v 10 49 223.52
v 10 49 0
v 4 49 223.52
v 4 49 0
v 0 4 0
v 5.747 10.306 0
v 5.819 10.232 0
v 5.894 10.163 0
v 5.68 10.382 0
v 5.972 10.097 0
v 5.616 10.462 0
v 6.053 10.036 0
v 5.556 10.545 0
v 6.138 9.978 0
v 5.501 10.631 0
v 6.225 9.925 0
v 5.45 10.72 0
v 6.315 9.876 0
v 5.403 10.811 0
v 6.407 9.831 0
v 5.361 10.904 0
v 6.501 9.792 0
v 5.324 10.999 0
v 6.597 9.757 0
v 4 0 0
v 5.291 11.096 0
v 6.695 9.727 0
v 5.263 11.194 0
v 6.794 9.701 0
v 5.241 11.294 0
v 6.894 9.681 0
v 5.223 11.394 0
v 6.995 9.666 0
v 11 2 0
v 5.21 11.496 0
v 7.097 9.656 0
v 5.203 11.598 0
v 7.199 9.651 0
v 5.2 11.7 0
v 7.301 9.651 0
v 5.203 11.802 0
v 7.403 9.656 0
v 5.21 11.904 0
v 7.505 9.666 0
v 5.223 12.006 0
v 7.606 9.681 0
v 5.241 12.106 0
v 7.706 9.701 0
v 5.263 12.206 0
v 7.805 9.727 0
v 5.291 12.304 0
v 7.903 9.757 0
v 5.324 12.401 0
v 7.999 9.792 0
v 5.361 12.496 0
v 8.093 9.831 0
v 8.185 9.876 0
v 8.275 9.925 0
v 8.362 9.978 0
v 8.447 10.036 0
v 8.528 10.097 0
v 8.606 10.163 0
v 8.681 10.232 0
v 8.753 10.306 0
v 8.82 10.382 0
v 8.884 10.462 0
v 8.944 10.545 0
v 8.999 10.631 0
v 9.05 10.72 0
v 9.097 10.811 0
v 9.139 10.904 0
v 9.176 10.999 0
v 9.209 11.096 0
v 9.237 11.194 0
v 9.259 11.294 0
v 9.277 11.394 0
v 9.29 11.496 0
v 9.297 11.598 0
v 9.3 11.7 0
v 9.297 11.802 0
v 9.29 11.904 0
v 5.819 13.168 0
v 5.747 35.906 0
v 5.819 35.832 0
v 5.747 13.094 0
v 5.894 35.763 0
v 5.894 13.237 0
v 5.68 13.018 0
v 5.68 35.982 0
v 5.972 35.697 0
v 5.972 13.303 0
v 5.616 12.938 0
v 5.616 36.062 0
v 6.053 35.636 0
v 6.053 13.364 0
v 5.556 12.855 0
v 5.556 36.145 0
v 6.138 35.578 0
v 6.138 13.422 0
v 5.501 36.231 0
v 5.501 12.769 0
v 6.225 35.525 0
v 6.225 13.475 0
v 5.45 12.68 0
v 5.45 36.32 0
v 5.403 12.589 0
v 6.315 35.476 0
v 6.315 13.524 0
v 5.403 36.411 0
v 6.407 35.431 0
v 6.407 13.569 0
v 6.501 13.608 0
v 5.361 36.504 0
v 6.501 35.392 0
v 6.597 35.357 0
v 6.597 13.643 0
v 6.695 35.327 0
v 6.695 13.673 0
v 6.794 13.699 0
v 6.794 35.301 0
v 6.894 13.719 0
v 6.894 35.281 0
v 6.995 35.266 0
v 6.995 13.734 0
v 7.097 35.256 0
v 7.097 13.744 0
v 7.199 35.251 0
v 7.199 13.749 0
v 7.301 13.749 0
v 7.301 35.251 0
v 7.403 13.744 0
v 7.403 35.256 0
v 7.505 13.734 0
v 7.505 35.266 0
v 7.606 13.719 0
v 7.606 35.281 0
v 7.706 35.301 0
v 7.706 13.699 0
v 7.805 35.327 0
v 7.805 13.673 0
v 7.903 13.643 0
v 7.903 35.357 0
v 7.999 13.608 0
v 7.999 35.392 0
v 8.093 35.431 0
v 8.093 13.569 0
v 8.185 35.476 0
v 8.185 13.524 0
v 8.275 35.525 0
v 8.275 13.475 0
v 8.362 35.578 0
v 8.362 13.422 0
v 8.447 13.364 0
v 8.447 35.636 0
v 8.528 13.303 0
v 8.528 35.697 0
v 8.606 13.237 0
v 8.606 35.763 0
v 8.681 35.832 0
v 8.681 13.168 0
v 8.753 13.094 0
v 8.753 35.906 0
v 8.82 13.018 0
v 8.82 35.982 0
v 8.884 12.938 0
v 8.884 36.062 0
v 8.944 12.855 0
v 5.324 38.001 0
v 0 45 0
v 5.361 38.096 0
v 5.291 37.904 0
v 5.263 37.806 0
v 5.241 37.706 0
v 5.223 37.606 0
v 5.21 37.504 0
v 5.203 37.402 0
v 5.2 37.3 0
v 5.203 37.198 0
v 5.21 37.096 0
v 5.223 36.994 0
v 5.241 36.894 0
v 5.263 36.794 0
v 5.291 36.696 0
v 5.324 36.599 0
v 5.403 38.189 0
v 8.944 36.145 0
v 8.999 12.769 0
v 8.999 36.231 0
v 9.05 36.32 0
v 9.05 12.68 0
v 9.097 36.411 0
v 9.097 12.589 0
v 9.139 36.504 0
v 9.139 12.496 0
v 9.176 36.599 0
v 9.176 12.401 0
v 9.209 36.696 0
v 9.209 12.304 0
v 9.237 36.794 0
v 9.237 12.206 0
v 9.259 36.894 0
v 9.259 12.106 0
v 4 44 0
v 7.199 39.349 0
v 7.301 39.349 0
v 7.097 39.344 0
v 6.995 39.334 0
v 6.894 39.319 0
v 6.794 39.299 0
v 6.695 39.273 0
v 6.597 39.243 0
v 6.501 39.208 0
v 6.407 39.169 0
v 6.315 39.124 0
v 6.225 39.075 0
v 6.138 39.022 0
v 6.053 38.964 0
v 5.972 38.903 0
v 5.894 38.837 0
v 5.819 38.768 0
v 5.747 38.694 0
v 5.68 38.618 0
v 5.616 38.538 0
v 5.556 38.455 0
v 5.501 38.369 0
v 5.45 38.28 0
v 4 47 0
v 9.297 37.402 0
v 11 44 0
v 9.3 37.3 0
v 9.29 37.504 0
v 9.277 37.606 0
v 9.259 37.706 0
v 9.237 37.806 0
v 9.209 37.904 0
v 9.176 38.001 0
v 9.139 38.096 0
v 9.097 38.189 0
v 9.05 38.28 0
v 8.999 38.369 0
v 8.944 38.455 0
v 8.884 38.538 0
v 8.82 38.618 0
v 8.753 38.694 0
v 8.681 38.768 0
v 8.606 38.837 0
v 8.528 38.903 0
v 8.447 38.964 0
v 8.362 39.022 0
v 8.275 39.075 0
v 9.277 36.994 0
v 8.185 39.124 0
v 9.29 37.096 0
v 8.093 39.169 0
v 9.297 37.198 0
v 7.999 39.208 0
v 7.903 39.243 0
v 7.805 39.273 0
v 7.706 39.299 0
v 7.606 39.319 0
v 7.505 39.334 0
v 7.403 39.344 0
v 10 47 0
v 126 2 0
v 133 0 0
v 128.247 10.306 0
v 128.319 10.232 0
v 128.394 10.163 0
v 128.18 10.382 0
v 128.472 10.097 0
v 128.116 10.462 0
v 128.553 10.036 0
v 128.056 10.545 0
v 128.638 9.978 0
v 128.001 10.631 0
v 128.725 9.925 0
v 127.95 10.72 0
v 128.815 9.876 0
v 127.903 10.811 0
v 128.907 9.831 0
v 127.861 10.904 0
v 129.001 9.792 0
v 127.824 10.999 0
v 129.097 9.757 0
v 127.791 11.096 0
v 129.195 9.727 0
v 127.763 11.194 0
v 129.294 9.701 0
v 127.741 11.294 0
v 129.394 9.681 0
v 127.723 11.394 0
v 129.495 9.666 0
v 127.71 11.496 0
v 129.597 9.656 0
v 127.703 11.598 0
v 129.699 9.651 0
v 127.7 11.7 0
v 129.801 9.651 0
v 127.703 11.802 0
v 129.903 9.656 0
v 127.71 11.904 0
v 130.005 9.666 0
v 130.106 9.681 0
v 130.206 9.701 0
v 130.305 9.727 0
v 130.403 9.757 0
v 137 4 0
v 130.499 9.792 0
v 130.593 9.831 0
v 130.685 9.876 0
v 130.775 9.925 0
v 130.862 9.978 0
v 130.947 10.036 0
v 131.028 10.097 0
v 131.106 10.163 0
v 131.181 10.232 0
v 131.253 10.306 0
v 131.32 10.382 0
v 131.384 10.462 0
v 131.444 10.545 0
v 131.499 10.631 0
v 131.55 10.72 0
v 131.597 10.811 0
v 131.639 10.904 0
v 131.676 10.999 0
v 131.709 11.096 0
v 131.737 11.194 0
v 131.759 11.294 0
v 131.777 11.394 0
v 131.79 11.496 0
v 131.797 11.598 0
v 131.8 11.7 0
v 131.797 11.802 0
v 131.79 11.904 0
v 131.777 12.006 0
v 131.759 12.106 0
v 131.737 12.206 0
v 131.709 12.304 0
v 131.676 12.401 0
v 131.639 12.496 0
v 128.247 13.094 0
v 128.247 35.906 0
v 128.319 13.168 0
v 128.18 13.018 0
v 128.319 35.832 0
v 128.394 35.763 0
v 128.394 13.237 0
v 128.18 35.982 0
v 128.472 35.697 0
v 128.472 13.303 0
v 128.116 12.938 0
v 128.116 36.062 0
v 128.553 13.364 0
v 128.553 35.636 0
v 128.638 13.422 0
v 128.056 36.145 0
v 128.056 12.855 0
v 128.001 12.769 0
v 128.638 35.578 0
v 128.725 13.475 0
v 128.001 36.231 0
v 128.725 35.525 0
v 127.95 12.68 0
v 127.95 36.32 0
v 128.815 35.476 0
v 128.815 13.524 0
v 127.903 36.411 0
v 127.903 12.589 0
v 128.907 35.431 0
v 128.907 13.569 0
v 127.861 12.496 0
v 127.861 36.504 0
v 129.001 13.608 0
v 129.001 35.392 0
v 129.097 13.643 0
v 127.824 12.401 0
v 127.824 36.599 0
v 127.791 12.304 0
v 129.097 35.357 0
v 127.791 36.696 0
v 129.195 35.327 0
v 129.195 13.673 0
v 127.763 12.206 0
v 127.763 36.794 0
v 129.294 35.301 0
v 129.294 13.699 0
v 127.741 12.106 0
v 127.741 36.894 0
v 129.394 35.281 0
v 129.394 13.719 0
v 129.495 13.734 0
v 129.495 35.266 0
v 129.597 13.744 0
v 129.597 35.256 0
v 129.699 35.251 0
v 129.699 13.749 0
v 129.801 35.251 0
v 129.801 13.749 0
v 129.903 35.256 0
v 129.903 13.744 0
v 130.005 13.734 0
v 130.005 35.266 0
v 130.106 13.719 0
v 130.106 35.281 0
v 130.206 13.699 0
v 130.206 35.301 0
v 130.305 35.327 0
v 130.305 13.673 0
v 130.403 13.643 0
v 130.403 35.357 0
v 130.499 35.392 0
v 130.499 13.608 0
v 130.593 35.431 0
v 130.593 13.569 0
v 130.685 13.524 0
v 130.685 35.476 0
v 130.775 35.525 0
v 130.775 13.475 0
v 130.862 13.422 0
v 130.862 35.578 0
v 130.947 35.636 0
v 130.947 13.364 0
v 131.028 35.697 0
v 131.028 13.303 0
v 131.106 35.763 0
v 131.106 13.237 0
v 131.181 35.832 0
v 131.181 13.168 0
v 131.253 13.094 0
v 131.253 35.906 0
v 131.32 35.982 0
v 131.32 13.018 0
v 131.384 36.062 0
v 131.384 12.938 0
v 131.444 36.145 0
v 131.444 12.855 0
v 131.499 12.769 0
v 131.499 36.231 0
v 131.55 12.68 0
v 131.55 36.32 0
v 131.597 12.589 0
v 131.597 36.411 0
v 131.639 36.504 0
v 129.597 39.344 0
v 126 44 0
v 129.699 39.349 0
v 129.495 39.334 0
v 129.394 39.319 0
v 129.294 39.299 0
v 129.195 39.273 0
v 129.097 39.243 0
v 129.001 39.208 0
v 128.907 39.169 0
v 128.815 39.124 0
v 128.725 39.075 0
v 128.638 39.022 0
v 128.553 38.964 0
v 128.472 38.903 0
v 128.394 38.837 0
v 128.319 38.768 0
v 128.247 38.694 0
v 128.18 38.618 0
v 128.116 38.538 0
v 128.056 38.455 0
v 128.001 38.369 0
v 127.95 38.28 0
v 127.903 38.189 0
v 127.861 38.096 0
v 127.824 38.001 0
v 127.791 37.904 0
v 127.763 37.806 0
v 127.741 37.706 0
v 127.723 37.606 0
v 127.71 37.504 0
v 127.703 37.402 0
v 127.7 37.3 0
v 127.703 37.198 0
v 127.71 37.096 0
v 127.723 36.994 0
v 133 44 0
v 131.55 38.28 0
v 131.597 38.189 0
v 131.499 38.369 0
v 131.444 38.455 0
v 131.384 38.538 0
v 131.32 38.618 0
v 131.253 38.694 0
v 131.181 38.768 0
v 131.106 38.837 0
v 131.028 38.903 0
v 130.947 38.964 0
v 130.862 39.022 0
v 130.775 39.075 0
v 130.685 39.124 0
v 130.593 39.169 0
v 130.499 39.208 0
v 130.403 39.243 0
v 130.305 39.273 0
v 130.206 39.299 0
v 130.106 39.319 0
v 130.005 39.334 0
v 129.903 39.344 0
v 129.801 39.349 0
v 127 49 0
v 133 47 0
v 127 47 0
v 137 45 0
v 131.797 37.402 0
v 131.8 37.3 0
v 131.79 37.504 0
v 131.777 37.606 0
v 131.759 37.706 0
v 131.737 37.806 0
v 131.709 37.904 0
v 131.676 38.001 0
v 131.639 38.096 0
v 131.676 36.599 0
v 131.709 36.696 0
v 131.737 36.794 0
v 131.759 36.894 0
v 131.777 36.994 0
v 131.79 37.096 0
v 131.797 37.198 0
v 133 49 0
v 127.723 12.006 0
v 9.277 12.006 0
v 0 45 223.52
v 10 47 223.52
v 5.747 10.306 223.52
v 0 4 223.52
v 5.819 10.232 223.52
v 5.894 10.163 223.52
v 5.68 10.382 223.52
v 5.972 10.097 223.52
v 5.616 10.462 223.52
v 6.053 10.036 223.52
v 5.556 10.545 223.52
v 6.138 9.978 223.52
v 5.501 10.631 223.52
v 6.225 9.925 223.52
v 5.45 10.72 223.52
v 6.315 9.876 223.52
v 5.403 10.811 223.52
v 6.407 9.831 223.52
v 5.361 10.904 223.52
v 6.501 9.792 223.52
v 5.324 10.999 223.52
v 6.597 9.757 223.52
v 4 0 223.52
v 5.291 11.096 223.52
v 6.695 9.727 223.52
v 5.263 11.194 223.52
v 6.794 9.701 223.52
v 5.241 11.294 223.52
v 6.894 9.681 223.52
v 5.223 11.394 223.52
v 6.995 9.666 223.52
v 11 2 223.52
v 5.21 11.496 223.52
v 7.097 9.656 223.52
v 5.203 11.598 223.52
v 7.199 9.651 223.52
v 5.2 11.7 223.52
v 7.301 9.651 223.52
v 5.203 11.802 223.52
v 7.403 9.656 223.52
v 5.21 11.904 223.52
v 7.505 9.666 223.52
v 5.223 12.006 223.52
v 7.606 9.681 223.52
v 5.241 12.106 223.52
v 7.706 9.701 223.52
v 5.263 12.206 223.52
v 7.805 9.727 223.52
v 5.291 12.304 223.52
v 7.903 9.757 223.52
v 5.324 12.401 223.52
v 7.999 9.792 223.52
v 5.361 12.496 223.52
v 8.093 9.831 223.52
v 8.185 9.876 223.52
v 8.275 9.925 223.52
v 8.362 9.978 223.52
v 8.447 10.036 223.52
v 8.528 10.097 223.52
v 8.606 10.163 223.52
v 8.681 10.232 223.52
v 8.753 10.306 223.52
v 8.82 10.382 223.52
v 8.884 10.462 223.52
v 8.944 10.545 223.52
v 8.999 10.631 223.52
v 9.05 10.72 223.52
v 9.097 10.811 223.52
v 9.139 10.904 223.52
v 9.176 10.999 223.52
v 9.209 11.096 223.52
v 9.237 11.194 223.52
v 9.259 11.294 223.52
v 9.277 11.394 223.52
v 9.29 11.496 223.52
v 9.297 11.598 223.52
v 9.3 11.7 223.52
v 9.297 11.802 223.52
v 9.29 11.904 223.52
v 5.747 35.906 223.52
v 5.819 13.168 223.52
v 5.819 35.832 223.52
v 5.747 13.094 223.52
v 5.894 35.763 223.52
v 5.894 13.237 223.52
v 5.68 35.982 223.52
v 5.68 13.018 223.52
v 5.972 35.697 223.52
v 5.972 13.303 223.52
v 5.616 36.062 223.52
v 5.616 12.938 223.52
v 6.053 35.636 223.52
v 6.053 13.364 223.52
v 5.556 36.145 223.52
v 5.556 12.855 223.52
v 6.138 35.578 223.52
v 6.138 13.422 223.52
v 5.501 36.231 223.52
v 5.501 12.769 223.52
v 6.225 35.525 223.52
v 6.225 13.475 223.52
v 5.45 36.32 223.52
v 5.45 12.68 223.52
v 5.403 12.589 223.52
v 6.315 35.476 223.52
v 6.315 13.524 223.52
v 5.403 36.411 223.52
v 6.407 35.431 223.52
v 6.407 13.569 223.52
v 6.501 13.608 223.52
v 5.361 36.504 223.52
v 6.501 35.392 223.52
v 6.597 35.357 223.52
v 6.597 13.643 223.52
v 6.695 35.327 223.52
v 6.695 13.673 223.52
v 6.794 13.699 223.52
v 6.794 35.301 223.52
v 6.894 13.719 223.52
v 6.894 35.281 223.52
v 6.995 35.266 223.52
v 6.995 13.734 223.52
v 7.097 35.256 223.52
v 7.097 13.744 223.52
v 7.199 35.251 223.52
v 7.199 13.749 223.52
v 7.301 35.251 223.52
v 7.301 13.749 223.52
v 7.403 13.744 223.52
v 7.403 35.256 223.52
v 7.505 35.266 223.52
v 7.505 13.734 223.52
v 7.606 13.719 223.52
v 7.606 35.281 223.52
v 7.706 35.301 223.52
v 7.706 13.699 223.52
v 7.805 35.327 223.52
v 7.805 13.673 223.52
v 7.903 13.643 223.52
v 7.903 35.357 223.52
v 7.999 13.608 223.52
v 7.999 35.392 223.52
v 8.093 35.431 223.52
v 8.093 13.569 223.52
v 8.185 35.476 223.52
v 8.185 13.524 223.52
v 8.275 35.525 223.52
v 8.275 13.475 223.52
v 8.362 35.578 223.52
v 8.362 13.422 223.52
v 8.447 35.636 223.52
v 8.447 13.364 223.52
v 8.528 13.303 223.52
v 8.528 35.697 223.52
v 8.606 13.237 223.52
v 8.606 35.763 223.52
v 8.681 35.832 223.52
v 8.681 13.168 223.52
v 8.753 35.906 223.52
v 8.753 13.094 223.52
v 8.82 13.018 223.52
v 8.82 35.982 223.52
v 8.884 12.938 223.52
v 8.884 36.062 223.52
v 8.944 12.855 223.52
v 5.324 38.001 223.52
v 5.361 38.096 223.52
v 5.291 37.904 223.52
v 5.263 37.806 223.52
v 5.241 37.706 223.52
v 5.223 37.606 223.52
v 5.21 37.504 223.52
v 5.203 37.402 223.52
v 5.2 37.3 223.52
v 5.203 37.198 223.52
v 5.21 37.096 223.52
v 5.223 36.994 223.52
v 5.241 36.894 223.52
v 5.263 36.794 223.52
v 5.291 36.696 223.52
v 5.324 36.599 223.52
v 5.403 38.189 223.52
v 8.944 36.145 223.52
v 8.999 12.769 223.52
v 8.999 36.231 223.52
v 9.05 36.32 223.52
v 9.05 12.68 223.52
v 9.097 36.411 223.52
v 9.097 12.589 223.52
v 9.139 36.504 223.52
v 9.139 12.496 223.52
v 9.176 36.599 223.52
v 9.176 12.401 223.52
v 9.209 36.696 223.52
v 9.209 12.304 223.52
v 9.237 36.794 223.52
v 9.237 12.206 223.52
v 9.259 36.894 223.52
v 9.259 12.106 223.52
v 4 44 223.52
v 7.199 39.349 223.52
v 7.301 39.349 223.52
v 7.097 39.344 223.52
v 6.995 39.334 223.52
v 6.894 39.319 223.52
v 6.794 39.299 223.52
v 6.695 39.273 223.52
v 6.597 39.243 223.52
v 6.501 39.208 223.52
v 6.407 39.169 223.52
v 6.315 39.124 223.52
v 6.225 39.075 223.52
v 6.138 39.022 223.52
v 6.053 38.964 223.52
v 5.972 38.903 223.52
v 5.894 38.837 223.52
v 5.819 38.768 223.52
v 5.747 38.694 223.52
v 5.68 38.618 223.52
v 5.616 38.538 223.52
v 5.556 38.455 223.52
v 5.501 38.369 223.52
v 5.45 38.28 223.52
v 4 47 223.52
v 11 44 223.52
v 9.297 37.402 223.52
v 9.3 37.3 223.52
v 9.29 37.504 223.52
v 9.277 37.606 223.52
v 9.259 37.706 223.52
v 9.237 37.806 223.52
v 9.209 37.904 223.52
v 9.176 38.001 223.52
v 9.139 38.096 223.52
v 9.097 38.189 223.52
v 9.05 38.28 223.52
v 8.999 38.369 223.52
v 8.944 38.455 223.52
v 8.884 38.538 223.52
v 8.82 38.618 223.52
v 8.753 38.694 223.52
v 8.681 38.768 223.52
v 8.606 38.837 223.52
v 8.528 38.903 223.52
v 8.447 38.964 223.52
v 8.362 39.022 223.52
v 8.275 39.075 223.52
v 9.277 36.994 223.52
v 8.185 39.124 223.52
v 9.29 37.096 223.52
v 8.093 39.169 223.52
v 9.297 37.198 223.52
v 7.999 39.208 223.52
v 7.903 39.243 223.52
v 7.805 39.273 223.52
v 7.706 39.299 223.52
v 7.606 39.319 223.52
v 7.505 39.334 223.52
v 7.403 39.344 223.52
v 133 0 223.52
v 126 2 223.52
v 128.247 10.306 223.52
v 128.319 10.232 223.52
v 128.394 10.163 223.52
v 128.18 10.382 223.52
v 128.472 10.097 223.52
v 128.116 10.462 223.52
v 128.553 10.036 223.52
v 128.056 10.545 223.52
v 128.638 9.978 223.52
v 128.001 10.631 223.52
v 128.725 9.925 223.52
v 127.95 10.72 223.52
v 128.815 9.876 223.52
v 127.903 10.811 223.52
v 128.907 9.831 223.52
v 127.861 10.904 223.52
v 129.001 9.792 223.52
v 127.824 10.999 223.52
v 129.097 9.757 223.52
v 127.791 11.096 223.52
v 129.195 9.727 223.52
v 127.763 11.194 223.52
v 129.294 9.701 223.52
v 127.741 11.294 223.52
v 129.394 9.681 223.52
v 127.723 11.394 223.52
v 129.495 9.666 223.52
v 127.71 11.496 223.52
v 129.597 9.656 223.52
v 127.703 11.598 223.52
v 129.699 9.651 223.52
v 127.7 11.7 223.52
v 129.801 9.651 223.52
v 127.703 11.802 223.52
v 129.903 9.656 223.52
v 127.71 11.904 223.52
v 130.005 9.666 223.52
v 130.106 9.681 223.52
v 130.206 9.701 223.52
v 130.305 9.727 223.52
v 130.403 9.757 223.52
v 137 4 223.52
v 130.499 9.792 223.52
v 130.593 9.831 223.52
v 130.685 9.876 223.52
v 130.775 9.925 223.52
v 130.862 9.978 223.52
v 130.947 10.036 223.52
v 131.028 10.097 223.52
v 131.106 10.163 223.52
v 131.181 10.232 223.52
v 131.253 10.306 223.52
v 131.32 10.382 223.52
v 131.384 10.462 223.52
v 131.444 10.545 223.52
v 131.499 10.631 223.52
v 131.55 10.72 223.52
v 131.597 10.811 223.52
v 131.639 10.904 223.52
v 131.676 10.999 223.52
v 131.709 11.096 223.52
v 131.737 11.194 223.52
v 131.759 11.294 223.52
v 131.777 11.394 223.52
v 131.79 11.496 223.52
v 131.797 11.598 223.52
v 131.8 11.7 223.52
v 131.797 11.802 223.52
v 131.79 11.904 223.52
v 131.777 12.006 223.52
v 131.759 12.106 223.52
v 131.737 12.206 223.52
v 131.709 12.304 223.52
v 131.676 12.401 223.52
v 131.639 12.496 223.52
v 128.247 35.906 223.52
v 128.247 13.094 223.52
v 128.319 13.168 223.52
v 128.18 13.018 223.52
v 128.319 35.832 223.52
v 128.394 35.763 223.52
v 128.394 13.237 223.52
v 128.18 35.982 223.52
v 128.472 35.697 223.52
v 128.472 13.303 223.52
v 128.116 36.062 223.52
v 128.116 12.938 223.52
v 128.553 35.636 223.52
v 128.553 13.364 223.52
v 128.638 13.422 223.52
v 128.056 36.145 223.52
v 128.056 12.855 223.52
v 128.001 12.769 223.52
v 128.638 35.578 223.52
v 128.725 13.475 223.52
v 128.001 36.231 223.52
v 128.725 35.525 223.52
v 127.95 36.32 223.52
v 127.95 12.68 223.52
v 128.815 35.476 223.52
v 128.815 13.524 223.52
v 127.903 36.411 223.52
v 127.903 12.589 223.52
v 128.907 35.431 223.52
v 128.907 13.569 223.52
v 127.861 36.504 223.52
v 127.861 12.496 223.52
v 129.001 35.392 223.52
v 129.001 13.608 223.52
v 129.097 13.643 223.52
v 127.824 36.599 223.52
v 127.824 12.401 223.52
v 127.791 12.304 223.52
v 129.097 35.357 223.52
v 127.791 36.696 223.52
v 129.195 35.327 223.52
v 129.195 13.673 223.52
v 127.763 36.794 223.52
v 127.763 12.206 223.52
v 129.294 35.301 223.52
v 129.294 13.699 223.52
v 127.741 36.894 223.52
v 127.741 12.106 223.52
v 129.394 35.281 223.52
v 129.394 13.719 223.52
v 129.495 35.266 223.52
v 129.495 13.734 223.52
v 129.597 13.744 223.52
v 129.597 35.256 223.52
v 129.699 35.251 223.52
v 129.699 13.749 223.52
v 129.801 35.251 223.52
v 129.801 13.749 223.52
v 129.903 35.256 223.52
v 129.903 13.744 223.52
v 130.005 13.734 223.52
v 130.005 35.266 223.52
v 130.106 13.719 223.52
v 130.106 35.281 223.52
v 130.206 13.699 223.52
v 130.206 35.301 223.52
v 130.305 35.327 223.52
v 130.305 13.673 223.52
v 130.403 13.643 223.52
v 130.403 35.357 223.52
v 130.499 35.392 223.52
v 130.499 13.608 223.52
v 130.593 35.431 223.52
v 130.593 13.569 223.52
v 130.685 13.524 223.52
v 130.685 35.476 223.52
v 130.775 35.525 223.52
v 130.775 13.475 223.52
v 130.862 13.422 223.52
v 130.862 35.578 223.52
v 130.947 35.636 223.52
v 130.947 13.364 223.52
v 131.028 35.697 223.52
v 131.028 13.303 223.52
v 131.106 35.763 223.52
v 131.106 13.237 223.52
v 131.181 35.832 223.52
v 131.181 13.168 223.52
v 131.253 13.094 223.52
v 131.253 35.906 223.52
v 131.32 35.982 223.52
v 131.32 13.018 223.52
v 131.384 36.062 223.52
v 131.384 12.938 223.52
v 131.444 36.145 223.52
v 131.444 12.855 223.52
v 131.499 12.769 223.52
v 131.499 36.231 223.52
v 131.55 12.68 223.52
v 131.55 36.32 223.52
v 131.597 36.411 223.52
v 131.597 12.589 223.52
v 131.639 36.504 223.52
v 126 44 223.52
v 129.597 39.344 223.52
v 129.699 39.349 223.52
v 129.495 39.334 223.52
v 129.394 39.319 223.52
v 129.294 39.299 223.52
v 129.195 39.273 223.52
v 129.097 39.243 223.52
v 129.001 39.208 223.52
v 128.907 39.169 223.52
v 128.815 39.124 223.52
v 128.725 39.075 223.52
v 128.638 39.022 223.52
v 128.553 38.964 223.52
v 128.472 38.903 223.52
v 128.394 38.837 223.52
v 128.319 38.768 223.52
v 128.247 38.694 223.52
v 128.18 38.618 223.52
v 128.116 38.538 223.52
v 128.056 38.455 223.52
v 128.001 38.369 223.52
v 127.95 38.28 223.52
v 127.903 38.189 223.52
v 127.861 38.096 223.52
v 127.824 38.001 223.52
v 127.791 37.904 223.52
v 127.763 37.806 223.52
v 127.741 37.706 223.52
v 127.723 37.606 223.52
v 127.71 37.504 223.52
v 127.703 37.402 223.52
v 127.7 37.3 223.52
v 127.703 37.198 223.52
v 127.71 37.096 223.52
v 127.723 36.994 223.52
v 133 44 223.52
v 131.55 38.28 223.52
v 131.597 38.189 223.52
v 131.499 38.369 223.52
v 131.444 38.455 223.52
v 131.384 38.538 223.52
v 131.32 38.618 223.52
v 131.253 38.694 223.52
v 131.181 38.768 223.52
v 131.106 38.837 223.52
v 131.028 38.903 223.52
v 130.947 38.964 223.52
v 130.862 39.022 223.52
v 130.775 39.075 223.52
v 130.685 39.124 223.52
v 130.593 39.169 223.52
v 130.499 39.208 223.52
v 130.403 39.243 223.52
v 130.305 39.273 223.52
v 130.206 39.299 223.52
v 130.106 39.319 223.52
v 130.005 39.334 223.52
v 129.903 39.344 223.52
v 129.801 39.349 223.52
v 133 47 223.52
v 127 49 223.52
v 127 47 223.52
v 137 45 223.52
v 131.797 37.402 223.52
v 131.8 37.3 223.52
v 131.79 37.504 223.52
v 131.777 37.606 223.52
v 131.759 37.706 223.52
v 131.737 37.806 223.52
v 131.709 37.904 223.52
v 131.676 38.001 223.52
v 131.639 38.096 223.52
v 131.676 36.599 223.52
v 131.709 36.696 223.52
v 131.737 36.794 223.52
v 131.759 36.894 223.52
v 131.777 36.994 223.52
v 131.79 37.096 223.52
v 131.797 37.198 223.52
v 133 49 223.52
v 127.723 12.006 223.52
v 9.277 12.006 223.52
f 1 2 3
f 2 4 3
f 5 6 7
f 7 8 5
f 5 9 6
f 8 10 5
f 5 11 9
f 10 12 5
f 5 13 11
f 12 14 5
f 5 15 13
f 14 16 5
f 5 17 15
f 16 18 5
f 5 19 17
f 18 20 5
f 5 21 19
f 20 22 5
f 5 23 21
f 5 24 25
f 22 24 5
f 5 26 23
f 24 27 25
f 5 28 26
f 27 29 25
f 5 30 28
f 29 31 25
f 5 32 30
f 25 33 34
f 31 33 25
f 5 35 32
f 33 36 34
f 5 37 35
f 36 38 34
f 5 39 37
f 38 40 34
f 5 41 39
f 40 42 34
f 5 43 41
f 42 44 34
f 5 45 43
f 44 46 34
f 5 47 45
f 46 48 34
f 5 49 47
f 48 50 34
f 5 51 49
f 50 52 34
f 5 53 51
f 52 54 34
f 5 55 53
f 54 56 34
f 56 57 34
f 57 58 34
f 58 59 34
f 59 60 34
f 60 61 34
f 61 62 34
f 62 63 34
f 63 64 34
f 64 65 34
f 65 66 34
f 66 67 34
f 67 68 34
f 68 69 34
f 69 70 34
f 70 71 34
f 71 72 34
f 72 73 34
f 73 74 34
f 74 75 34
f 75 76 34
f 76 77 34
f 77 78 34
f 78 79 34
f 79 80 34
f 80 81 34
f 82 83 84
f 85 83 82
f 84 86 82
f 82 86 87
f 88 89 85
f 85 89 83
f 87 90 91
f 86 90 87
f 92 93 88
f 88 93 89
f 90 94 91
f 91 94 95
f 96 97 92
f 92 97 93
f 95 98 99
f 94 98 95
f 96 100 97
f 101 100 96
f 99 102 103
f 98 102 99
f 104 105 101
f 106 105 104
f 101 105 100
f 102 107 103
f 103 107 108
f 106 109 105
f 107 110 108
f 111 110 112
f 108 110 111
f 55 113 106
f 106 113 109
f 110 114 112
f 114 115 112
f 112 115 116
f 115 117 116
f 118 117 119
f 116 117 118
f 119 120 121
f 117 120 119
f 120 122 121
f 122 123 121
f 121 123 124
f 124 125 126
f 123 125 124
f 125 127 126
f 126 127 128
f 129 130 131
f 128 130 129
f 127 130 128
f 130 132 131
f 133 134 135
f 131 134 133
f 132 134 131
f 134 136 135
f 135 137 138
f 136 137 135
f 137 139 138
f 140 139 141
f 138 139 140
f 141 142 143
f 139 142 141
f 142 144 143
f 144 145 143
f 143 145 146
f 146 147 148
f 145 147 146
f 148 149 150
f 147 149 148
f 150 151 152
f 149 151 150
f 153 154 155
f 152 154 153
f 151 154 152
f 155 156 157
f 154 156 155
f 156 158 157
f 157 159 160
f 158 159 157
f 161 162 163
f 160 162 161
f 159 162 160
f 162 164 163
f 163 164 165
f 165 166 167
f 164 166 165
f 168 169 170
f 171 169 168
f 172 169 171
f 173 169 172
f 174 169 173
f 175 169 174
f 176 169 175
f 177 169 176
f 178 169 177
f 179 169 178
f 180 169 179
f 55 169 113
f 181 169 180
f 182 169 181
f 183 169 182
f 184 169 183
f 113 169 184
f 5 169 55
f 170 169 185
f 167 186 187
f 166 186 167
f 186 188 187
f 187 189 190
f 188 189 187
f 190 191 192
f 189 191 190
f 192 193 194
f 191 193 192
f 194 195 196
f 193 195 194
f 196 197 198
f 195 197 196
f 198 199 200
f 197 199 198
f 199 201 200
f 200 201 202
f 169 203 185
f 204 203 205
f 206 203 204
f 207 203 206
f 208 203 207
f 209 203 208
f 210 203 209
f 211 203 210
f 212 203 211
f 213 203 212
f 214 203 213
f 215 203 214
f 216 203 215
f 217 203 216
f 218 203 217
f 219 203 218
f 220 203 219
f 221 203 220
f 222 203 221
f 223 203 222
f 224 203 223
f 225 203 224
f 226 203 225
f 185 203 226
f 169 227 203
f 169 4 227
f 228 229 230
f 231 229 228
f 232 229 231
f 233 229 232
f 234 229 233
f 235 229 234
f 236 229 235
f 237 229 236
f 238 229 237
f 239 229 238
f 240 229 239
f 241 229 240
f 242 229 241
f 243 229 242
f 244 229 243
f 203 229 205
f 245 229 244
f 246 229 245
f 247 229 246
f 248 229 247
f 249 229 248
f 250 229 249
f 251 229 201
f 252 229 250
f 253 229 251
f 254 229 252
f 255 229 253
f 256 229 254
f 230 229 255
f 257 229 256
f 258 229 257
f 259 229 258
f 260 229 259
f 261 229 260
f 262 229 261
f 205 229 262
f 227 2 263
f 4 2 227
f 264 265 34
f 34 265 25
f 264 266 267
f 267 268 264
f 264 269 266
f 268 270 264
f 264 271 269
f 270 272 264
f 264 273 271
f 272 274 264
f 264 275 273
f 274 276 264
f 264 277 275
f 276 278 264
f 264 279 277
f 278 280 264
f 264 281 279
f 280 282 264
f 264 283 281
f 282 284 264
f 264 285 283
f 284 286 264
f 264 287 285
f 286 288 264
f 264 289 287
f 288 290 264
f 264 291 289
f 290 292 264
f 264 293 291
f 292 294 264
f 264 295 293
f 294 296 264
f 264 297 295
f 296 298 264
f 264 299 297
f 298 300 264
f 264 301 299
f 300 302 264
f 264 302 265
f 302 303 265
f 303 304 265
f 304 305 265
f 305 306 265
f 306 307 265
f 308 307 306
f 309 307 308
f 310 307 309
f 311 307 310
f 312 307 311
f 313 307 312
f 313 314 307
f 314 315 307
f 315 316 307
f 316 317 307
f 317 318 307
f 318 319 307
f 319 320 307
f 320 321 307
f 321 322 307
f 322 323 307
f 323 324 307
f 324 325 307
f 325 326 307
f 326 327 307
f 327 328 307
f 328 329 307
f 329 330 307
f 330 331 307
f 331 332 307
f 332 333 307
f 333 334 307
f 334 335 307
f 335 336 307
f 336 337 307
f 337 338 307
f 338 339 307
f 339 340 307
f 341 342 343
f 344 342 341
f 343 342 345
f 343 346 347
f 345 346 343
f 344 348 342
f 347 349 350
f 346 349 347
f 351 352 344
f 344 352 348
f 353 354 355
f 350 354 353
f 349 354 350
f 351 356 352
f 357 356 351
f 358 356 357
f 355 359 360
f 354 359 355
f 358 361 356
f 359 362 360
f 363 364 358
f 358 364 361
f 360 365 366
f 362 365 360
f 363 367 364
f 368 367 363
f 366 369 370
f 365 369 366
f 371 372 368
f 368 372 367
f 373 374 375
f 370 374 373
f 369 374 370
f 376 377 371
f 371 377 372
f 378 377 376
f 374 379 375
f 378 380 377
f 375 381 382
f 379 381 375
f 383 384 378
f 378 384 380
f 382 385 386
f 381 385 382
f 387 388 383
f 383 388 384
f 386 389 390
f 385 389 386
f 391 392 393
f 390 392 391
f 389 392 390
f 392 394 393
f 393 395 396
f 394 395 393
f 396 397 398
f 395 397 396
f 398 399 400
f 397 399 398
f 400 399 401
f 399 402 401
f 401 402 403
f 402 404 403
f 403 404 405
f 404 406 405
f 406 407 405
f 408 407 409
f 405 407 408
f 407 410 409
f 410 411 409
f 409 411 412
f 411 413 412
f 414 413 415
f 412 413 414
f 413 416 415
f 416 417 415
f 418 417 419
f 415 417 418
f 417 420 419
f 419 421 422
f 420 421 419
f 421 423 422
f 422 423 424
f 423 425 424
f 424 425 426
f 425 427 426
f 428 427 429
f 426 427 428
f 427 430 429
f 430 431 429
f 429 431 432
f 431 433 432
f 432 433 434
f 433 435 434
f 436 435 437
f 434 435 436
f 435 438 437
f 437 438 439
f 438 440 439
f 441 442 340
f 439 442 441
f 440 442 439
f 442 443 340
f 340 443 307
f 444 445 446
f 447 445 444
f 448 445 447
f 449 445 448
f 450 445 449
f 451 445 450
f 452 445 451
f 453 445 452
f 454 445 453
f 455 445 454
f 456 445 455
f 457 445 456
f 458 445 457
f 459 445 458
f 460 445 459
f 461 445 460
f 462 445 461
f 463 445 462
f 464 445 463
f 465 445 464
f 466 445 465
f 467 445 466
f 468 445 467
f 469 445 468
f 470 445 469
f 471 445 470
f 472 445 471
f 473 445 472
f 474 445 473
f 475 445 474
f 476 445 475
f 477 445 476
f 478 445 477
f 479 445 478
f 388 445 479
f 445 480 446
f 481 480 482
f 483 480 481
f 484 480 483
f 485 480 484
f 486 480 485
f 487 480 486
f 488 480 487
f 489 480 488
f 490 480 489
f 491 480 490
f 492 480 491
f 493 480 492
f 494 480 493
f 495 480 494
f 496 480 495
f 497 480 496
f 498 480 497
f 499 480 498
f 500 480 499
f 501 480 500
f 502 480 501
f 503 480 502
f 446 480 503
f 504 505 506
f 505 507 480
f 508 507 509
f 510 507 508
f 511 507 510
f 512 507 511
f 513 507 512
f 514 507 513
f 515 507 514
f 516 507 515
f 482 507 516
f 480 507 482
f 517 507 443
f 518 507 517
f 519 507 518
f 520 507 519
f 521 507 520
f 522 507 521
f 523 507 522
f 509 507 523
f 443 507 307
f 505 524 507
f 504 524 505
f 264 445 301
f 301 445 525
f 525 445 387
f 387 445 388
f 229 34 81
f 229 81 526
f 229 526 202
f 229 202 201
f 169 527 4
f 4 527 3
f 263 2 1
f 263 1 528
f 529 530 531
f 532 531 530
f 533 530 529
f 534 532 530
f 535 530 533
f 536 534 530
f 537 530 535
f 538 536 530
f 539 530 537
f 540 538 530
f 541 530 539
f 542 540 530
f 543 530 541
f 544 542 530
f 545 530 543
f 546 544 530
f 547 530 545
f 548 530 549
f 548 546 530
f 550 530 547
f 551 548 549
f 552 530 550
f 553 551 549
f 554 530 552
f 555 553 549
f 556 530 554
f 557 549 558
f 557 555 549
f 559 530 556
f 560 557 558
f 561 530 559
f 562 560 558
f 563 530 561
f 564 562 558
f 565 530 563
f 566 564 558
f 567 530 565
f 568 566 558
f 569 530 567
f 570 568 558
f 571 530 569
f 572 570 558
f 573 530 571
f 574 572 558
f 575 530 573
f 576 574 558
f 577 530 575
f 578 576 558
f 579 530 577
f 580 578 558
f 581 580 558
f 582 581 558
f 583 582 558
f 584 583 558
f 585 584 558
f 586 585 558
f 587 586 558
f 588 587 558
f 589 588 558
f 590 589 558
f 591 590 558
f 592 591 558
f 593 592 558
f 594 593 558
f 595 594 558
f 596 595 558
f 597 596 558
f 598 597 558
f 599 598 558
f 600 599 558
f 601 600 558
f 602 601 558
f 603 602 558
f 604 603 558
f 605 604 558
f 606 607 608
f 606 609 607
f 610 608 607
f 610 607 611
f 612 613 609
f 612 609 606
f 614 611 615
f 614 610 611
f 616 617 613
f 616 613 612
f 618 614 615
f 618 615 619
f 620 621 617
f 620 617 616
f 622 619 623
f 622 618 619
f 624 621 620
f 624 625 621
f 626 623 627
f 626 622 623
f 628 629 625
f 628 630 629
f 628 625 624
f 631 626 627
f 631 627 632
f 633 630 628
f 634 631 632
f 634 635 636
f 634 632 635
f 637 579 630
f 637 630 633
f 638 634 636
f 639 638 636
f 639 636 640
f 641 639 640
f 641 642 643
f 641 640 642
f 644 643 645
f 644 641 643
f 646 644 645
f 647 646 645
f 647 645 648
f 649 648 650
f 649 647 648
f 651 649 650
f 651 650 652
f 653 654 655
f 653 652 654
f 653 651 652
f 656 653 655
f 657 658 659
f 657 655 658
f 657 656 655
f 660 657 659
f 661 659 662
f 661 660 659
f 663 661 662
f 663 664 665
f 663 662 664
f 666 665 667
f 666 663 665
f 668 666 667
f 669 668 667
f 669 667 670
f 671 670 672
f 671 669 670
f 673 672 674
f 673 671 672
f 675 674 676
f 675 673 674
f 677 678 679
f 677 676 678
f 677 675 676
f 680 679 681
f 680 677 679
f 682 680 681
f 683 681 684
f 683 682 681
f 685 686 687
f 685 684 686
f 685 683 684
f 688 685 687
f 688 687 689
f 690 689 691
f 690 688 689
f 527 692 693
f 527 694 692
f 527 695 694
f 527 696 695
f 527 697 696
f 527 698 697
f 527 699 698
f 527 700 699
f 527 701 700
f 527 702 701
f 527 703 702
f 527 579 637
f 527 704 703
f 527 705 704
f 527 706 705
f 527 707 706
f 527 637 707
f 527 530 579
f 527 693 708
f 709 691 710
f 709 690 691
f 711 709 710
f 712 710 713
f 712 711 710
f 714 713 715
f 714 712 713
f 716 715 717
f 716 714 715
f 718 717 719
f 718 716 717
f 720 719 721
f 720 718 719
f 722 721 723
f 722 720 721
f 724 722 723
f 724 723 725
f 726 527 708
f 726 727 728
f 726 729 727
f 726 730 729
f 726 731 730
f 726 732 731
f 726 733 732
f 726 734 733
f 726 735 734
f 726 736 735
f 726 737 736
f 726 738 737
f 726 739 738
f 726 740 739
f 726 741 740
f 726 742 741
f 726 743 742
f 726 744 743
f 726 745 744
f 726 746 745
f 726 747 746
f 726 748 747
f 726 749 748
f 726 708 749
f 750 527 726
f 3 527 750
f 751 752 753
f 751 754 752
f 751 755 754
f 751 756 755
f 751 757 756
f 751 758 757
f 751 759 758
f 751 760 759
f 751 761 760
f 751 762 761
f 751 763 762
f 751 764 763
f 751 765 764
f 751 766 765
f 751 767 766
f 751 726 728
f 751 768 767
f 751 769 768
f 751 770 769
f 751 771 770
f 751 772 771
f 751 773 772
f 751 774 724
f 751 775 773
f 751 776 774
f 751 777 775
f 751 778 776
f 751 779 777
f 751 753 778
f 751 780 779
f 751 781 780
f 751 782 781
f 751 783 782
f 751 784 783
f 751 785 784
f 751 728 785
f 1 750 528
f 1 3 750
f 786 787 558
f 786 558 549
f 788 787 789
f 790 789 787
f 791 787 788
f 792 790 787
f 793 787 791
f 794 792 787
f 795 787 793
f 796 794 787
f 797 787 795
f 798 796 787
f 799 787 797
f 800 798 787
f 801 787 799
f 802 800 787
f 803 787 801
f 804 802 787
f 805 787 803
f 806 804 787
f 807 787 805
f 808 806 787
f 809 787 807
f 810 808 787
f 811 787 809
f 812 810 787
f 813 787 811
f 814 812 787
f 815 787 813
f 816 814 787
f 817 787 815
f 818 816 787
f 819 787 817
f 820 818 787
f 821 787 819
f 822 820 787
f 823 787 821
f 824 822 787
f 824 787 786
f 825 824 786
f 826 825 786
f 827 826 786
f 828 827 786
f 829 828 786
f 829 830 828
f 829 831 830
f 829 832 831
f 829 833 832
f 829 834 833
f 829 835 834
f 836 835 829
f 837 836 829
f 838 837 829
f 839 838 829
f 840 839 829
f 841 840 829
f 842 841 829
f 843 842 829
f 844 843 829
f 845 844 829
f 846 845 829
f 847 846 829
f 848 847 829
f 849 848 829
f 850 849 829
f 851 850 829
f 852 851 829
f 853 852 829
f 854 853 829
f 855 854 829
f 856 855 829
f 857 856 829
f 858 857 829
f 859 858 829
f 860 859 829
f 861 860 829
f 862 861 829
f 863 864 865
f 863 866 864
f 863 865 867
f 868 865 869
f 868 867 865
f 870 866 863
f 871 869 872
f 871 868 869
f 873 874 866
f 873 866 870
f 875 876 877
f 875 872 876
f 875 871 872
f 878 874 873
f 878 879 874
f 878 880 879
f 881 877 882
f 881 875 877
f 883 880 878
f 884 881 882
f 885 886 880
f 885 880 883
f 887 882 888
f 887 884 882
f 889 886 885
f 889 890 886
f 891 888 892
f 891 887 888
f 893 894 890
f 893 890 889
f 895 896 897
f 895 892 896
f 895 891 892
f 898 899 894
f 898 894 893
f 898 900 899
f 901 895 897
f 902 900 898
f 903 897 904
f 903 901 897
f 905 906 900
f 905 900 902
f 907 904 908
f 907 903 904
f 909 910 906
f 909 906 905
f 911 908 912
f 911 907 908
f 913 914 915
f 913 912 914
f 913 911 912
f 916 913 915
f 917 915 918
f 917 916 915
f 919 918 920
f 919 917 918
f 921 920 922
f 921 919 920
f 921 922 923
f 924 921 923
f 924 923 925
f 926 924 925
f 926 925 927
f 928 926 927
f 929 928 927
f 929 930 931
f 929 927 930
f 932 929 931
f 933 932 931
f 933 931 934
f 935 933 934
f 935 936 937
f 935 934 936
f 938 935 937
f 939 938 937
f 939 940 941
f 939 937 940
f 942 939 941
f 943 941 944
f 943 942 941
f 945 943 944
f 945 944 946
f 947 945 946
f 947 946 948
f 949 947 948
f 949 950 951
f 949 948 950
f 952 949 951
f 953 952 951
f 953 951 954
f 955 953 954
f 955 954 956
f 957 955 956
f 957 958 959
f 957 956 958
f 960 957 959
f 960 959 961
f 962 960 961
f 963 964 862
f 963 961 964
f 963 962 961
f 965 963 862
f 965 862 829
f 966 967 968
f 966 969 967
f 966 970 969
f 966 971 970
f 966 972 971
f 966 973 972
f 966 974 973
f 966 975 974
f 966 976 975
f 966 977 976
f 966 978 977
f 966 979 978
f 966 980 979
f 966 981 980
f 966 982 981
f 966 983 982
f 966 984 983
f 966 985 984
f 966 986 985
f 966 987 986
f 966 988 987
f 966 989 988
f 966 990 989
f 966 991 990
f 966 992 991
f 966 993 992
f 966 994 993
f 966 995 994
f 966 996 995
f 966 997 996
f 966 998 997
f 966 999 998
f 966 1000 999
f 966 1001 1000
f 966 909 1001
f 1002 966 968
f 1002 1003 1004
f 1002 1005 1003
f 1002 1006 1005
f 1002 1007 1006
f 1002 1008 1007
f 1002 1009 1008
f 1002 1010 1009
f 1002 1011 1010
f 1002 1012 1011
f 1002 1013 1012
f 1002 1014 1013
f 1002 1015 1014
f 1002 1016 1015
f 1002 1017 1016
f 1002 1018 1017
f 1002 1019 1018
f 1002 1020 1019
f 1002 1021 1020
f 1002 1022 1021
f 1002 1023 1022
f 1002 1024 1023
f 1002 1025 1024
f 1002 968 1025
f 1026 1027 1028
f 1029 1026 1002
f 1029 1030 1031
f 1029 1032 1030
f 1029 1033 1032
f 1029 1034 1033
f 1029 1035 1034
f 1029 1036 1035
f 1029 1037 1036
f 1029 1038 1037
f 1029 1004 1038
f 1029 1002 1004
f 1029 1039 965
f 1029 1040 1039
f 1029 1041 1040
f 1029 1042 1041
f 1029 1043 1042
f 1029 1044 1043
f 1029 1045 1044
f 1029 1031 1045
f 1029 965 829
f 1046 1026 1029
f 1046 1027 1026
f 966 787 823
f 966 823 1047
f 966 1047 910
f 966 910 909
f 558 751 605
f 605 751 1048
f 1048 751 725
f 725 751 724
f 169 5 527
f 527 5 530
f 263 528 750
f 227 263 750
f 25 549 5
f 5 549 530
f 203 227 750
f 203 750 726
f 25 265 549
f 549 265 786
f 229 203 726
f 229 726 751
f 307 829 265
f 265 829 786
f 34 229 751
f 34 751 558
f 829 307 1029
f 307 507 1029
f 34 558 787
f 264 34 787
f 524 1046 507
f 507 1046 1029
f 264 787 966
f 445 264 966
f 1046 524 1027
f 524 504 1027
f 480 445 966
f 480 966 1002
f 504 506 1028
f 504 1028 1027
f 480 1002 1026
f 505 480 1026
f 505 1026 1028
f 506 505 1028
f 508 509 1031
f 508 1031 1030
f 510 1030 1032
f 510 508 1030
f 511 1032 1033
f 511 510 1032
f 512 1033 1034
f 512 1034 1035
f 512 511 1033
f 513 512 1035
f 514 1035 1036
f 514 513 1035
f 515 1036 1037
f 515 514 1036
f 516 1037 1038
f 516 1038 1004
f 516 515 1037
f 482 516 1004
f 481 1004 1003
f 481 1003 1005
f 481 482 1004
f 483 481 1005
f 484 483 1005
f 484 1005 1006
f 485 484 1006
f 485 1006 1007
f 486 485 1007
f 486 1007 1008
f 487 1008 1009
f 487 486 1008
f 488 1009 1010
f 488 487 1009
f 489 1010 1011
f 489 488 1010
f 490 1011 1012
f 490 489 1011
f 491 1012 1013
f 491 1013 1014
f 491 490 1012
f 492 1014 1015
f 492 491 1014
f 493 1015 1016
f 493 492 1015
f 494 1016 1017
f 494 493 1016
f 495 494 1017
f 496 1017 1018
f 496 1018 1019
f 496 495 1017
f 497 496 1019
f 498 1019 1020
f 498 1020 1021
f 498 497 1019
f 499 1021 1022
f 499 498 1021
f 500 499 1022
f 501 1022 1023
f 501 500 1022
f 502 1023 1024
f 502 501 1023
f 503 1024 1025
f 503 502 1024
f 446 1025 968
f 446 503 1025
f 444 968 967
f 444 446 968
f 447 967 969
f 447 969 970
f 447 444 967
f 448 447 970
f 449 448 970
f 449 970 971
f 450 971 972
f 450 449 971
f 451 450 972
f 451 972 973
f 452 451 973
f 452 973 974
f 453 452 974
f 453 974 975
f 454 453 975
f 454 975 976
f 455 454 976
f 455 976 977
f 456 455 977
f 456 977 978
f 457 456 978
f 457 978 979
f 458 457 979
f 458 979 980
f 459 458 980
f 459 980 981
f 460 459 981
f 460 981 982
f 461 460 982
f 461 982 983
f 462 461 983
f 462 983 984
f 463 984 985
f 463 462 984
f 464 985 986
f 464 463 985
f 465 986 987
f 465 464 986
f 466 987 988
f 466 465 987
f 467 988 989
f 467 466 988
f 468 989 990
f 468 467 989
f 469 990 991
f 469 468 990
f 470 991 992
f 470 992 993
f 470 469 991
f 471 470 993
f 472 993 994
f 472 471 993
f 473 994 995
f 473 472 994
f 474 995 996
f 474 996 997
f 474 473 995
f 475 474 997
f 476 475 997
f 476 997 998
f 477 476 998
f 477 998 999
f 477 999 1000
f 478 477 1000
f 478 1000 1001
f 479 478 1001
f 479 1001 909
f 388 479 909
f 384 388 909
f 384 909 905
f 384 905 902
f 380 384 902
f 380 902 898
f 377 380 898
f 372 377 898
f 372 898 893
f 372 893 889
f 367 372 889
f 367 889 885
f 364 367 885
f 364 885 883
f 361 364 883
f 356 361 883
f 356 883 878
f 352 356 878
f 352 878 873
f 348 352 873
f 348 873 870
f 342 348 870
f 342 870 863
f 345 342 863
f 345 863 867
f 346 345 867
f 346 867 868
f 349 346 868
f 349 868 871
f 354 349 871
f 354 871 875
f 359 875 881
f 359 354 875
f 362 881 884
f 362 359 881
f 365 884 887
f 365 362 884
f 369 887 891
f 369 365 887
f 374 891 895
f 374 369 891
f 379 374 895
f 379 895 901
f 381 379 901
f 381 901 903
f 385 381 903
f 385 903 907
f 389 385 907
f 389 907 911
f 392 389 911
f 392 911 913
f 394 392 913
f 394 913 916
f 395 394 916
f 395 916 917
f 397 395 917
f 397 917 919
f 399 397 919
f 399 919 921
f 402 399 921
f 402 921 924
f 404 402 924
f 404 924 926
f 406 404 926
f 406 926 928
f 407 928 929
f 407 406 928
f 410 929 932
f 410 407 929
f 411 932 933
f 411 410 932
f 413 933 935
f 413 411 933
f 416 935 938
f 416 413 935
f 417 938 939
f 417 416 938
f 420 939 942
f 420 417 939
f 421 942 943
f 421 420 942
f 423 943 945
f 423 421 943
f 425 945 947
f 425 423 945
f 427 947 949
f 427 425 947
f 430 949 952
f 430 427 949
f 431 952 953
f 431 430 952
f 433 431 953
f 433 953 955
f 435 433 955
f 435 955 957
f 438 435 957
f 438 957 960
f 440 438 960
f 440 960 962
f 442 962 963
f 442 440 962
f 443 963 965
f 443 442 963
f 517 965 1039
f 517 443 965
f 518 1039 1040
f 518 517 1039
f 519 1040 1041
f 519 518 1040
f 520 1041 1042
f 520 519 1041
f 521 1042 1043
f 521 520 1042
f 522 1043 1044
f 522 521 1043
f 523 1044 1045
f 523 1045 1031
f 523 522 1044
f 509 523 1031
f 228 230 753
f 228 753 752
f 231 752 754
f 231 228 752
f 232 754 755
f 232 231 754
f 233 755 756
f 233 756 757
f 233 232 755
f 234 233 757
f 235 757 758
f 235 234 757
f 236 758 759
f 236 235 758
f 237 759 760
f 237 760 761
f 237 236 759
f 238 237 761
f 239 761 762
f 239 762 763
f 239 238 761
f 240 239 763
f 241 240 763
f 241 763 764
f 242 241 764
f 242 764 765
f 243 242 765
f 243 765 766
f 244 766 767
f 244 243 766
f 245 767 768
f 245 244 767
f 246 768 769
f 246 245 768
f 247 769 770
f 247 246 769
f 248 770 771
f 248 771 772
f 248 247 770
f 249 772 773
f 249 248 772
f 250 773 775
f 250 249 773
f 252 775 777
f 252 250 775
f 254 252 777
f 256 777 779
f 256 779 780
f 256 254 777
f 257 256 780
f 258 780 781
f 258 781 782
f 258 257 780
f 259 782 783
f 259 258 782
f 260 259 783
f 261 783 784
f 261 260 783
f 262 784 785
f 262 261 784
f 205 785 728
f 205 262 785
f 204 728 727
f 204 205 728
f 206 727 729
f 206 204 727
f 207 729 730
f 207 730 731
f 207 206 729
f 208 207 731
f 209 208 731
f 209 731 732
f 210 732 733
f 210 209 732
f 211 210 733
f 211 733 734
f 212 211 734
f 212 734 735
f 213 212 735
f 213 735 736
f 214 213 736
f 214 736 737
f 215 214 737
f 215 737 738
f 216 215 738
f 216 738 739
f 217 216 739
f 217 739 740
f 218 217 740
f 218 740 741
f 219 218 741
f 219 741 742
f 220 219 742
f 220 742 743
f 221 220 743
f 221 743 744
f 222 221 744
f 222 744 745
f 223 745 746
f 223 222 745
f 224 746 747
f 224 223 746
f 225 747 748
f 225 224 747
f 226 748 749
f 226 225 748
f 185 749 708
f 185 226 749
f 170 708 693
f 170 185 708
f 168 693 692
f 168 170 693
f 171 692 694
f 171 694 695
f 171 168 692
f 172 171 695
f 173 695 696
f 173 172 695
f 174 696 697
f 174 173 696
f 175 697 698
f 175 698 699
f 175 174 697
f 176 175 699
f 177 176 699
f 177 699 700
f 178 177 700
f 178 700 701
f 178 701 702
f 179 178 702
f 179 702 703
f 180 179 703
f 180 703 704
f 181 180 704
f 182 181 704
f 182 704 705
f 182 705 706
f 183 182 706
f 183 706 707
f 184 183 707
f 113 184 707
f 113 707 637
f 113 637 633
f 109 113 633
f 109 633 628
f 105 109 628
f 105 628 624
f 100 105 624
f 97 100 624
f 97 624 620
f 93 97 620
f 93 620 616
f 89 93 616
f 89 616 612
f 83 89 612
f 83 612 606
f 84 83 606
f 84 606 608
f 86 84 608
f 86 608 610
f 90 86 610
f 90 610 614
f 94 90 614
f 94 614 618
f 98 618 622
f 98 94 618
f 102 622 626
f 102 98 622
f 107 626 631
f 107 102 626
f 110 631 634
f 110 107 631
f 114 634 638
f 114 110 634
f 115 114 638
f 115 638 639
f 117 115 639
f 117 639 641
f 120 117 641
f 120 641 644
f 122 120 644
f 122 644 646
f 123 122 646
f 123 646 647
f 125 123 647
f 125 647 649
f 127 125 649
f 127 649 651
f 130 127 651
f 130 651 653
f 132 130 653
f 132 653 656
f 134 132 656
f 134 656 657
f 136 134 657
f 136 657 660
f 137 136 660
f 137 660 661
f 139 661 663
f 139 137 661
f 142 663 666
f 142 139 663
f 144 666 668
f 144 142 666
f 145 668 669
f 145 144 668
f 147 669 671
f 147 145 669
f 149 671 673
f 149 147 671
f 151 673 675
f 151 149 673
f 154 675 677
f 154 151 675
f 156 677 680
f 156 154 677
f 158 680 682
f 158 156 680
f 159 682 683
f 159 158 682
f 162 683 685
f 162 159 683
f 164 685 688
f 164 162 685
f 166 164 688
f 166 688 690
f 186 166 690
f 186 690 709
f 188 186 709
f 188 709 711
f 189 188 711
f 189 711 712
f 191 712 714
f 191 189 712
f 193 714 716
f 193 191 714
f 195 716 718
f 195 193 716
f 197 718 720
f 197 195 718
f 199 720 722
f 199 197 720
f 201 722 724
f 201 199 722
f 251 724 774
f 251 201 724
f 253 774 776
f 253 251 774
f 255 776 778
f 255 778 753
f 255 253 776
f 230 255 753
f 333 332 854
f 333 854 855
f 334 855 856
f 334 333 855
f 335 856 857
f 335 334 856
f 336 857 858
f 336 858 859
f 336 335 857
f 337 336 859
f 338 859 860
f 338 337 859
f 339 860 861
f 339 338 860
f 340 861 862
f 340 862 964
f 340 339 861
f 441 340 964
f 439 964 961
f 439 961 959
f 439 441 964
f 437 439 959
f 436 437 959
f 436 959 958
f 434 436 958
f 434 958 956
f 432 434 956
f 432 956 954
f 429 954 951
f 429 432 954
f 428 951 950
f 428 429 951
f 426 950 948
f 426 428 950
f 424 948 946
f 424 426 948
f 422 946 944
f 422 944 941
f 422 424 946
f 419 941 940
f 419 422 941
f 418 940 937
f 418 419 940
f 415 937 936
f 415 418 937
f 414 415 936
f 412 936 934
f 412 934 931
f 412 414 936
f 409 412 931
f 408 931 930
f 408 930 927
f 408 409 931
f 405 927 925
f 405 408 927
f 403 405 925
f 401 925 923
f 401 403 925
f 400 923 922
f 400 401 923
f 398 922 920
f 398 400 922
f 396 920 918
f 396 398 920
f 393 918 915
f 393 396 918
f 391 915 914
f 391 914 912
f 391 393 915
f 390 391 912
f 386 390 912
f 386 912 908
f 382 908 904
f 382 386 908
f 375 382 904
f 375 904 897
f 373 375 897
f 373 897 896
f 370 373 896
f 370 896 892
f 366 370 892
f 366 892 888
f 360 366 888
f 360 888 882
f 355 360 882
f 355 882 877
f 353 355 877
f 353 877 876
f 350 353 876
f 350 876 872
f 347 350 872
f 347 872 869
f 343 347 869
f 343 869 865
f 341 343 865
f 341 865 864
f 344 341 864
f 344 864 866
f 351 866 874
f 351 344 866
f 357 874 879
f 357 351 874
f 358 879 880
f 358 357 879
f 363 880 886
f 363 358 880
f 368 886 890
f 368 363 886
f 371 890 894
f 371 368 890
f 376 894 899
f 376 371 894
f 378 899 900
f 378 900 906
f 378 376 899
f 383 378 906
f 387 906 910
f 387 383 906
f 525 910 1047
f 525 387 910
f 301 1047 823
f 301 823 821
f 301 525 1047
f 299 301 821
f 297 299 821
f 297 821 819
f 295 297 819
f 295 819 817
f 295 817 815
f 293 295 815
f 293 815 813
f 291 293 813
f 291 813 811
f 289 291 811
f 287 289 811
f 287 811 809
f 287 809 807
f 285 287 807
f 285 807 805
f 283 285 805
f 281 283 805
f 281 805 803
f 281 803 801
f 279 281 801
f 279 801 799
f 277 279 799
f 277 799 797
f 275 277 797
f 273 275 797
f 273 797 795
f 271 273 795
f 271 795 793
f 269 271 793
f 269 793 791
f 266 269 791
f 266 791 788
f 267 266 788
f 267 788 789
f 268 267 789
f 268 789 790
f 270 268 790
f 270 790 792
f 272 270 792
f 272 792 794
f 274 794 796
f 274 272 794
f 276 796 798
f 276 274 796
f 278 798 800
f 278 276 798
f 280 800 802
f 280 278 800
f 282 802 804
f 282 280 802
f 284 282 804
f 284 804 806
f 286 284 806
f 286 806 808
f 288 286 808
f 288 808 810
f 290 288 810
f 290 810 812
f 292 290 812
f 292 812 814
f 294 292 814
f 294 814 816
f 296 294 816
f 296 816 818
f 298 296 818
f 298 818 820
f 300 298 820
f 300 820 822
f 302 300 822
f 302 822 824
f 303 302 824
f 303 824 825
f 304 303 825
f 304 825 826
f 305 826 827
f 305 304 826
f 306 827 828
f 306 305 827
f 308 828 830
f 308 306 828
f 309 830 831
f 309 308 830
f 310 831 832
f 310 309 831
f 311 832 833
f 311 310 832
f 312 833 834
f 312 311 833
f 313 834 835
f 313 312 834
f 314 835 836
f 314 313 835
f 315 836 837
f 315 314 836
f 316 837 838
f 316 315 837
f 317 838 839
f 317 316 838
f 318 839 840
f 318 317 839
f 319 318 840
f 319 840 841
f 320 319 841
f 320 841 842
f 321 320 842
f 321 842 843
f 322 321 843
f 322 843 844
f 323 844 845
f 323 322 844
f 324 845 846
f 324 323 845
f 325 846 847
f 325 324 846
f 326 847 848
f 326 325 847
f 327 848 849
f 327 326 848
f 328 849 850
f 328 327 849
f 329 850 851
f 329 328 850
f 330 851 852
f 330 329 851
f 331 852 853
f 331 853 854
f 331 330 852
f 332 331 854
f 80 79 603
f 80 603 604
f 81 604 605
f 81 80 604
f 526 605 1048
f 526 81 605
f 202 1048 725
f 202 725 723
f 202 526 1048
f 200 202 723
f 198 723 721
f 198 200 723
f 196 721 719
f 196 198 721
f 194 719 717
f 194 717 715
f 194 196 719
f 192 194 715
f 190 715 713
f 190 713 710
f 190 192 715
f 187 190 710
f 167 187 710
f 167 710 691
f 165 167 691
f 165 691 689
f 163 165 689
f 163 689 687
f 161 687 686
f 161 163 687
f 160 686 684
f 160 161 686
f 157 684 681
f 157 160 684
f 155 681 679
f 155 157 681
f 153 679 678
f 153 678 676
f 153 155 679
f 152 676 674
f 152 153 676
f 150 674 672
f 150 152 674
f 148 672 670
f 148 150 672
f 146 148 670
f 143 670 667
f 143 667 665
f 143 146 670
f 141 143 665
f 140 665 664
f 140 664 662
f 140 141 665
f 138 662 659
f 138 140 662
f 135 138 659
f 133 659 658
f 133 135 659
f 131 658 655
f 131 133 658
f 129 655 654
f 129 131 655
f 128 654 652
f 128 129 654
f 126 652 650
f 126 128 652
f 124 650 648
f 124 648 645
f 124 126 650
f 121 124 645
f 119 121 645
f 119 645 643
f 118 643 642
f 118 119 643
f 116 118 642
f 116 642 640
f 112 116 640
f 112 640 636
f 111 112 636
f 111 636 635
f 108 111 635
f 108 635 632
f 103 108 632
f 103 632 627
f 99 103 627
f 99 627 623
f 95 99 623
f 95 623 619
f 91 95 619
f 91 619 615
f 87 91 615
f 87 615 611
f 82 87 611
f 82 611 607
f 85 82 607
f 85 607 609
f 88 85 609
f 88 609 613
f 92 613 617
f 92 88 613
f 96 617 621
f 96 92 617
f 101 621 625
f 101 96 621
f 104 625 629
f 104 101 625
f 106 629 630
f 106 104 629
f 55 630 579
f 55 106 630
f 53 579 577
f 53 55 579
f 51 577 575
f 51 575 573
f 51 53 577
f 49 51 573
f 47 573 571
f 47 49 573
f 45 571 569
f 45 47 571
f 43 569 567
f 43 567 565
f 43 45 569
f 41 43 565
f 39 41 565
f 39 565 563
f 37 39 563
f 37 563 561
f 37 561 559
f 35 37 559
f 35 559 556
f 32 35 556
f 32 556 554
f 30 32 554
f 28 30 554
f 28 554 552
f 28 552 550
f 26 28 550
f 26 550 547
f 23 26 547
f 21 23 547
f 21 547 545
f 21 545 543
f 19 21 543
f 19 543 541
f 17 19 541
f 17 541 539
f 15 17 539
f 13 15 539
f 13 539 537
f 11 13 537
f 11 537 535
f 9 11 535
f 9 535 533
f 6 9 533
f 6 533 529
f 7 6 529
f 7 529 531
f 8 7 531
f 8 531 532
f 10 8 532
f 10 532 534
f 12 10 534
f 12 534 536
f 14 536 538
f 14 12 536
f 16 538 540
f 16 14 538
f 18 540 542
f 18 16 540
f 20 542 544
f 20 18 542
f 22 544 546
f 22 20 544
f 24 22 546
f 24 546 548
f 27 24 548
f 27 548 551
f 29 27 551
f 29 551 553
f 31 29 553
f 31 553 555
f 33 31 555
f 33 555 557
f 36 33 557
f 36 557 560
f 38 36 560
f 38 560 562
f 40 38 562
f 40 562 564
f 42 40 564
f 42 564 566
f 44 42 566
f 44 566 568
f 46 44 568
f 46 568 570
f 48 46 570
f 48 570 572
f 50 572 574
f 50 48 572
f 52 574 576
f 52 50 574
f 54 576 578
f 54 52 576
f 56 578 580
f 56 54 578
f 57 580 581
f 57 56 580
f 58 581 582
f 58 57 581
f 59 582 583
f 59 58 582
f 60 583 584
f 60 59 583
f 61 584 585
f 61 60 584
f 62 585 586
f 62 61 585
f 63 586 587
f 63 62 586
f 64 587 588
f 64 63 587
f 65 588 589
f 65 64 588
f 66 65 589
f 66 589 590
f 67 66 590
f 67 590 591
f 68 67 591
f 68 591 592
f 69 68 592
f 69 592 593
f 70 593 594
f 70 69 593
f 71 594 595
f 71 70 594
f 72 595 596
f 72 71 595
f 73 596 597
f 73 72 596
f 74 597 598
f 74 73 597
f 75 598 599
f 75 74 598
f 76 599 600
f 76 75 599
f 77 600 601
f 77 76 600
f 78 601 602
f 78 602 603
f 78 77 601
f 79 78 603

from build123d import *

# Parameters (mm, degrees)
SKETCH_R     = 2.05
PAD_DEPTH    = 223.52
CHAMFER_SIZE = 4


with BuildPart() as part:
    # Sketch → Pad (new body)
    with BuildSketch(Plane.XY):
        Polygon((0, 0), (137, 0), (137, 49), (127, 49), (127, 47), (133, 47), (133, 44), (126, 44), (126, 2), (11, 2), (11, 44), (4, 44), (4, 47), (10, 47), (10, 49), (0, 49), align=None)
        with Locations((7.25, 11.7)):
            Circle(SKETCH_R, mode=Mode.SUBTRACT)
        with Locations((129.75, 11.7)):
            Circle(SKETCH_R, mode=Mode.SUBTRACT)
        with Locations((7.25, 37.3)):
            Circle(SKETCH_R, mode=Mode.SUBTRACT)
        with Locations((129.75, 37.3)):
            Circle(SKETCH_R, mode=Mode.SUBTRACT)
    extrude(amount=PAD_DEPTH)

    # Chamfer
    chamfer_edges = [part.edges().sort_by_distance(p)[0] for p in [
        (0, 49, 111.76),
        (137, 49, 111.76),
        (137, 0, 111.76),
        (0, 0, 111.76),
    ]]
    chamfer(chamfer_edges, length=CHAMFER_SIZE)


solid = part.part
